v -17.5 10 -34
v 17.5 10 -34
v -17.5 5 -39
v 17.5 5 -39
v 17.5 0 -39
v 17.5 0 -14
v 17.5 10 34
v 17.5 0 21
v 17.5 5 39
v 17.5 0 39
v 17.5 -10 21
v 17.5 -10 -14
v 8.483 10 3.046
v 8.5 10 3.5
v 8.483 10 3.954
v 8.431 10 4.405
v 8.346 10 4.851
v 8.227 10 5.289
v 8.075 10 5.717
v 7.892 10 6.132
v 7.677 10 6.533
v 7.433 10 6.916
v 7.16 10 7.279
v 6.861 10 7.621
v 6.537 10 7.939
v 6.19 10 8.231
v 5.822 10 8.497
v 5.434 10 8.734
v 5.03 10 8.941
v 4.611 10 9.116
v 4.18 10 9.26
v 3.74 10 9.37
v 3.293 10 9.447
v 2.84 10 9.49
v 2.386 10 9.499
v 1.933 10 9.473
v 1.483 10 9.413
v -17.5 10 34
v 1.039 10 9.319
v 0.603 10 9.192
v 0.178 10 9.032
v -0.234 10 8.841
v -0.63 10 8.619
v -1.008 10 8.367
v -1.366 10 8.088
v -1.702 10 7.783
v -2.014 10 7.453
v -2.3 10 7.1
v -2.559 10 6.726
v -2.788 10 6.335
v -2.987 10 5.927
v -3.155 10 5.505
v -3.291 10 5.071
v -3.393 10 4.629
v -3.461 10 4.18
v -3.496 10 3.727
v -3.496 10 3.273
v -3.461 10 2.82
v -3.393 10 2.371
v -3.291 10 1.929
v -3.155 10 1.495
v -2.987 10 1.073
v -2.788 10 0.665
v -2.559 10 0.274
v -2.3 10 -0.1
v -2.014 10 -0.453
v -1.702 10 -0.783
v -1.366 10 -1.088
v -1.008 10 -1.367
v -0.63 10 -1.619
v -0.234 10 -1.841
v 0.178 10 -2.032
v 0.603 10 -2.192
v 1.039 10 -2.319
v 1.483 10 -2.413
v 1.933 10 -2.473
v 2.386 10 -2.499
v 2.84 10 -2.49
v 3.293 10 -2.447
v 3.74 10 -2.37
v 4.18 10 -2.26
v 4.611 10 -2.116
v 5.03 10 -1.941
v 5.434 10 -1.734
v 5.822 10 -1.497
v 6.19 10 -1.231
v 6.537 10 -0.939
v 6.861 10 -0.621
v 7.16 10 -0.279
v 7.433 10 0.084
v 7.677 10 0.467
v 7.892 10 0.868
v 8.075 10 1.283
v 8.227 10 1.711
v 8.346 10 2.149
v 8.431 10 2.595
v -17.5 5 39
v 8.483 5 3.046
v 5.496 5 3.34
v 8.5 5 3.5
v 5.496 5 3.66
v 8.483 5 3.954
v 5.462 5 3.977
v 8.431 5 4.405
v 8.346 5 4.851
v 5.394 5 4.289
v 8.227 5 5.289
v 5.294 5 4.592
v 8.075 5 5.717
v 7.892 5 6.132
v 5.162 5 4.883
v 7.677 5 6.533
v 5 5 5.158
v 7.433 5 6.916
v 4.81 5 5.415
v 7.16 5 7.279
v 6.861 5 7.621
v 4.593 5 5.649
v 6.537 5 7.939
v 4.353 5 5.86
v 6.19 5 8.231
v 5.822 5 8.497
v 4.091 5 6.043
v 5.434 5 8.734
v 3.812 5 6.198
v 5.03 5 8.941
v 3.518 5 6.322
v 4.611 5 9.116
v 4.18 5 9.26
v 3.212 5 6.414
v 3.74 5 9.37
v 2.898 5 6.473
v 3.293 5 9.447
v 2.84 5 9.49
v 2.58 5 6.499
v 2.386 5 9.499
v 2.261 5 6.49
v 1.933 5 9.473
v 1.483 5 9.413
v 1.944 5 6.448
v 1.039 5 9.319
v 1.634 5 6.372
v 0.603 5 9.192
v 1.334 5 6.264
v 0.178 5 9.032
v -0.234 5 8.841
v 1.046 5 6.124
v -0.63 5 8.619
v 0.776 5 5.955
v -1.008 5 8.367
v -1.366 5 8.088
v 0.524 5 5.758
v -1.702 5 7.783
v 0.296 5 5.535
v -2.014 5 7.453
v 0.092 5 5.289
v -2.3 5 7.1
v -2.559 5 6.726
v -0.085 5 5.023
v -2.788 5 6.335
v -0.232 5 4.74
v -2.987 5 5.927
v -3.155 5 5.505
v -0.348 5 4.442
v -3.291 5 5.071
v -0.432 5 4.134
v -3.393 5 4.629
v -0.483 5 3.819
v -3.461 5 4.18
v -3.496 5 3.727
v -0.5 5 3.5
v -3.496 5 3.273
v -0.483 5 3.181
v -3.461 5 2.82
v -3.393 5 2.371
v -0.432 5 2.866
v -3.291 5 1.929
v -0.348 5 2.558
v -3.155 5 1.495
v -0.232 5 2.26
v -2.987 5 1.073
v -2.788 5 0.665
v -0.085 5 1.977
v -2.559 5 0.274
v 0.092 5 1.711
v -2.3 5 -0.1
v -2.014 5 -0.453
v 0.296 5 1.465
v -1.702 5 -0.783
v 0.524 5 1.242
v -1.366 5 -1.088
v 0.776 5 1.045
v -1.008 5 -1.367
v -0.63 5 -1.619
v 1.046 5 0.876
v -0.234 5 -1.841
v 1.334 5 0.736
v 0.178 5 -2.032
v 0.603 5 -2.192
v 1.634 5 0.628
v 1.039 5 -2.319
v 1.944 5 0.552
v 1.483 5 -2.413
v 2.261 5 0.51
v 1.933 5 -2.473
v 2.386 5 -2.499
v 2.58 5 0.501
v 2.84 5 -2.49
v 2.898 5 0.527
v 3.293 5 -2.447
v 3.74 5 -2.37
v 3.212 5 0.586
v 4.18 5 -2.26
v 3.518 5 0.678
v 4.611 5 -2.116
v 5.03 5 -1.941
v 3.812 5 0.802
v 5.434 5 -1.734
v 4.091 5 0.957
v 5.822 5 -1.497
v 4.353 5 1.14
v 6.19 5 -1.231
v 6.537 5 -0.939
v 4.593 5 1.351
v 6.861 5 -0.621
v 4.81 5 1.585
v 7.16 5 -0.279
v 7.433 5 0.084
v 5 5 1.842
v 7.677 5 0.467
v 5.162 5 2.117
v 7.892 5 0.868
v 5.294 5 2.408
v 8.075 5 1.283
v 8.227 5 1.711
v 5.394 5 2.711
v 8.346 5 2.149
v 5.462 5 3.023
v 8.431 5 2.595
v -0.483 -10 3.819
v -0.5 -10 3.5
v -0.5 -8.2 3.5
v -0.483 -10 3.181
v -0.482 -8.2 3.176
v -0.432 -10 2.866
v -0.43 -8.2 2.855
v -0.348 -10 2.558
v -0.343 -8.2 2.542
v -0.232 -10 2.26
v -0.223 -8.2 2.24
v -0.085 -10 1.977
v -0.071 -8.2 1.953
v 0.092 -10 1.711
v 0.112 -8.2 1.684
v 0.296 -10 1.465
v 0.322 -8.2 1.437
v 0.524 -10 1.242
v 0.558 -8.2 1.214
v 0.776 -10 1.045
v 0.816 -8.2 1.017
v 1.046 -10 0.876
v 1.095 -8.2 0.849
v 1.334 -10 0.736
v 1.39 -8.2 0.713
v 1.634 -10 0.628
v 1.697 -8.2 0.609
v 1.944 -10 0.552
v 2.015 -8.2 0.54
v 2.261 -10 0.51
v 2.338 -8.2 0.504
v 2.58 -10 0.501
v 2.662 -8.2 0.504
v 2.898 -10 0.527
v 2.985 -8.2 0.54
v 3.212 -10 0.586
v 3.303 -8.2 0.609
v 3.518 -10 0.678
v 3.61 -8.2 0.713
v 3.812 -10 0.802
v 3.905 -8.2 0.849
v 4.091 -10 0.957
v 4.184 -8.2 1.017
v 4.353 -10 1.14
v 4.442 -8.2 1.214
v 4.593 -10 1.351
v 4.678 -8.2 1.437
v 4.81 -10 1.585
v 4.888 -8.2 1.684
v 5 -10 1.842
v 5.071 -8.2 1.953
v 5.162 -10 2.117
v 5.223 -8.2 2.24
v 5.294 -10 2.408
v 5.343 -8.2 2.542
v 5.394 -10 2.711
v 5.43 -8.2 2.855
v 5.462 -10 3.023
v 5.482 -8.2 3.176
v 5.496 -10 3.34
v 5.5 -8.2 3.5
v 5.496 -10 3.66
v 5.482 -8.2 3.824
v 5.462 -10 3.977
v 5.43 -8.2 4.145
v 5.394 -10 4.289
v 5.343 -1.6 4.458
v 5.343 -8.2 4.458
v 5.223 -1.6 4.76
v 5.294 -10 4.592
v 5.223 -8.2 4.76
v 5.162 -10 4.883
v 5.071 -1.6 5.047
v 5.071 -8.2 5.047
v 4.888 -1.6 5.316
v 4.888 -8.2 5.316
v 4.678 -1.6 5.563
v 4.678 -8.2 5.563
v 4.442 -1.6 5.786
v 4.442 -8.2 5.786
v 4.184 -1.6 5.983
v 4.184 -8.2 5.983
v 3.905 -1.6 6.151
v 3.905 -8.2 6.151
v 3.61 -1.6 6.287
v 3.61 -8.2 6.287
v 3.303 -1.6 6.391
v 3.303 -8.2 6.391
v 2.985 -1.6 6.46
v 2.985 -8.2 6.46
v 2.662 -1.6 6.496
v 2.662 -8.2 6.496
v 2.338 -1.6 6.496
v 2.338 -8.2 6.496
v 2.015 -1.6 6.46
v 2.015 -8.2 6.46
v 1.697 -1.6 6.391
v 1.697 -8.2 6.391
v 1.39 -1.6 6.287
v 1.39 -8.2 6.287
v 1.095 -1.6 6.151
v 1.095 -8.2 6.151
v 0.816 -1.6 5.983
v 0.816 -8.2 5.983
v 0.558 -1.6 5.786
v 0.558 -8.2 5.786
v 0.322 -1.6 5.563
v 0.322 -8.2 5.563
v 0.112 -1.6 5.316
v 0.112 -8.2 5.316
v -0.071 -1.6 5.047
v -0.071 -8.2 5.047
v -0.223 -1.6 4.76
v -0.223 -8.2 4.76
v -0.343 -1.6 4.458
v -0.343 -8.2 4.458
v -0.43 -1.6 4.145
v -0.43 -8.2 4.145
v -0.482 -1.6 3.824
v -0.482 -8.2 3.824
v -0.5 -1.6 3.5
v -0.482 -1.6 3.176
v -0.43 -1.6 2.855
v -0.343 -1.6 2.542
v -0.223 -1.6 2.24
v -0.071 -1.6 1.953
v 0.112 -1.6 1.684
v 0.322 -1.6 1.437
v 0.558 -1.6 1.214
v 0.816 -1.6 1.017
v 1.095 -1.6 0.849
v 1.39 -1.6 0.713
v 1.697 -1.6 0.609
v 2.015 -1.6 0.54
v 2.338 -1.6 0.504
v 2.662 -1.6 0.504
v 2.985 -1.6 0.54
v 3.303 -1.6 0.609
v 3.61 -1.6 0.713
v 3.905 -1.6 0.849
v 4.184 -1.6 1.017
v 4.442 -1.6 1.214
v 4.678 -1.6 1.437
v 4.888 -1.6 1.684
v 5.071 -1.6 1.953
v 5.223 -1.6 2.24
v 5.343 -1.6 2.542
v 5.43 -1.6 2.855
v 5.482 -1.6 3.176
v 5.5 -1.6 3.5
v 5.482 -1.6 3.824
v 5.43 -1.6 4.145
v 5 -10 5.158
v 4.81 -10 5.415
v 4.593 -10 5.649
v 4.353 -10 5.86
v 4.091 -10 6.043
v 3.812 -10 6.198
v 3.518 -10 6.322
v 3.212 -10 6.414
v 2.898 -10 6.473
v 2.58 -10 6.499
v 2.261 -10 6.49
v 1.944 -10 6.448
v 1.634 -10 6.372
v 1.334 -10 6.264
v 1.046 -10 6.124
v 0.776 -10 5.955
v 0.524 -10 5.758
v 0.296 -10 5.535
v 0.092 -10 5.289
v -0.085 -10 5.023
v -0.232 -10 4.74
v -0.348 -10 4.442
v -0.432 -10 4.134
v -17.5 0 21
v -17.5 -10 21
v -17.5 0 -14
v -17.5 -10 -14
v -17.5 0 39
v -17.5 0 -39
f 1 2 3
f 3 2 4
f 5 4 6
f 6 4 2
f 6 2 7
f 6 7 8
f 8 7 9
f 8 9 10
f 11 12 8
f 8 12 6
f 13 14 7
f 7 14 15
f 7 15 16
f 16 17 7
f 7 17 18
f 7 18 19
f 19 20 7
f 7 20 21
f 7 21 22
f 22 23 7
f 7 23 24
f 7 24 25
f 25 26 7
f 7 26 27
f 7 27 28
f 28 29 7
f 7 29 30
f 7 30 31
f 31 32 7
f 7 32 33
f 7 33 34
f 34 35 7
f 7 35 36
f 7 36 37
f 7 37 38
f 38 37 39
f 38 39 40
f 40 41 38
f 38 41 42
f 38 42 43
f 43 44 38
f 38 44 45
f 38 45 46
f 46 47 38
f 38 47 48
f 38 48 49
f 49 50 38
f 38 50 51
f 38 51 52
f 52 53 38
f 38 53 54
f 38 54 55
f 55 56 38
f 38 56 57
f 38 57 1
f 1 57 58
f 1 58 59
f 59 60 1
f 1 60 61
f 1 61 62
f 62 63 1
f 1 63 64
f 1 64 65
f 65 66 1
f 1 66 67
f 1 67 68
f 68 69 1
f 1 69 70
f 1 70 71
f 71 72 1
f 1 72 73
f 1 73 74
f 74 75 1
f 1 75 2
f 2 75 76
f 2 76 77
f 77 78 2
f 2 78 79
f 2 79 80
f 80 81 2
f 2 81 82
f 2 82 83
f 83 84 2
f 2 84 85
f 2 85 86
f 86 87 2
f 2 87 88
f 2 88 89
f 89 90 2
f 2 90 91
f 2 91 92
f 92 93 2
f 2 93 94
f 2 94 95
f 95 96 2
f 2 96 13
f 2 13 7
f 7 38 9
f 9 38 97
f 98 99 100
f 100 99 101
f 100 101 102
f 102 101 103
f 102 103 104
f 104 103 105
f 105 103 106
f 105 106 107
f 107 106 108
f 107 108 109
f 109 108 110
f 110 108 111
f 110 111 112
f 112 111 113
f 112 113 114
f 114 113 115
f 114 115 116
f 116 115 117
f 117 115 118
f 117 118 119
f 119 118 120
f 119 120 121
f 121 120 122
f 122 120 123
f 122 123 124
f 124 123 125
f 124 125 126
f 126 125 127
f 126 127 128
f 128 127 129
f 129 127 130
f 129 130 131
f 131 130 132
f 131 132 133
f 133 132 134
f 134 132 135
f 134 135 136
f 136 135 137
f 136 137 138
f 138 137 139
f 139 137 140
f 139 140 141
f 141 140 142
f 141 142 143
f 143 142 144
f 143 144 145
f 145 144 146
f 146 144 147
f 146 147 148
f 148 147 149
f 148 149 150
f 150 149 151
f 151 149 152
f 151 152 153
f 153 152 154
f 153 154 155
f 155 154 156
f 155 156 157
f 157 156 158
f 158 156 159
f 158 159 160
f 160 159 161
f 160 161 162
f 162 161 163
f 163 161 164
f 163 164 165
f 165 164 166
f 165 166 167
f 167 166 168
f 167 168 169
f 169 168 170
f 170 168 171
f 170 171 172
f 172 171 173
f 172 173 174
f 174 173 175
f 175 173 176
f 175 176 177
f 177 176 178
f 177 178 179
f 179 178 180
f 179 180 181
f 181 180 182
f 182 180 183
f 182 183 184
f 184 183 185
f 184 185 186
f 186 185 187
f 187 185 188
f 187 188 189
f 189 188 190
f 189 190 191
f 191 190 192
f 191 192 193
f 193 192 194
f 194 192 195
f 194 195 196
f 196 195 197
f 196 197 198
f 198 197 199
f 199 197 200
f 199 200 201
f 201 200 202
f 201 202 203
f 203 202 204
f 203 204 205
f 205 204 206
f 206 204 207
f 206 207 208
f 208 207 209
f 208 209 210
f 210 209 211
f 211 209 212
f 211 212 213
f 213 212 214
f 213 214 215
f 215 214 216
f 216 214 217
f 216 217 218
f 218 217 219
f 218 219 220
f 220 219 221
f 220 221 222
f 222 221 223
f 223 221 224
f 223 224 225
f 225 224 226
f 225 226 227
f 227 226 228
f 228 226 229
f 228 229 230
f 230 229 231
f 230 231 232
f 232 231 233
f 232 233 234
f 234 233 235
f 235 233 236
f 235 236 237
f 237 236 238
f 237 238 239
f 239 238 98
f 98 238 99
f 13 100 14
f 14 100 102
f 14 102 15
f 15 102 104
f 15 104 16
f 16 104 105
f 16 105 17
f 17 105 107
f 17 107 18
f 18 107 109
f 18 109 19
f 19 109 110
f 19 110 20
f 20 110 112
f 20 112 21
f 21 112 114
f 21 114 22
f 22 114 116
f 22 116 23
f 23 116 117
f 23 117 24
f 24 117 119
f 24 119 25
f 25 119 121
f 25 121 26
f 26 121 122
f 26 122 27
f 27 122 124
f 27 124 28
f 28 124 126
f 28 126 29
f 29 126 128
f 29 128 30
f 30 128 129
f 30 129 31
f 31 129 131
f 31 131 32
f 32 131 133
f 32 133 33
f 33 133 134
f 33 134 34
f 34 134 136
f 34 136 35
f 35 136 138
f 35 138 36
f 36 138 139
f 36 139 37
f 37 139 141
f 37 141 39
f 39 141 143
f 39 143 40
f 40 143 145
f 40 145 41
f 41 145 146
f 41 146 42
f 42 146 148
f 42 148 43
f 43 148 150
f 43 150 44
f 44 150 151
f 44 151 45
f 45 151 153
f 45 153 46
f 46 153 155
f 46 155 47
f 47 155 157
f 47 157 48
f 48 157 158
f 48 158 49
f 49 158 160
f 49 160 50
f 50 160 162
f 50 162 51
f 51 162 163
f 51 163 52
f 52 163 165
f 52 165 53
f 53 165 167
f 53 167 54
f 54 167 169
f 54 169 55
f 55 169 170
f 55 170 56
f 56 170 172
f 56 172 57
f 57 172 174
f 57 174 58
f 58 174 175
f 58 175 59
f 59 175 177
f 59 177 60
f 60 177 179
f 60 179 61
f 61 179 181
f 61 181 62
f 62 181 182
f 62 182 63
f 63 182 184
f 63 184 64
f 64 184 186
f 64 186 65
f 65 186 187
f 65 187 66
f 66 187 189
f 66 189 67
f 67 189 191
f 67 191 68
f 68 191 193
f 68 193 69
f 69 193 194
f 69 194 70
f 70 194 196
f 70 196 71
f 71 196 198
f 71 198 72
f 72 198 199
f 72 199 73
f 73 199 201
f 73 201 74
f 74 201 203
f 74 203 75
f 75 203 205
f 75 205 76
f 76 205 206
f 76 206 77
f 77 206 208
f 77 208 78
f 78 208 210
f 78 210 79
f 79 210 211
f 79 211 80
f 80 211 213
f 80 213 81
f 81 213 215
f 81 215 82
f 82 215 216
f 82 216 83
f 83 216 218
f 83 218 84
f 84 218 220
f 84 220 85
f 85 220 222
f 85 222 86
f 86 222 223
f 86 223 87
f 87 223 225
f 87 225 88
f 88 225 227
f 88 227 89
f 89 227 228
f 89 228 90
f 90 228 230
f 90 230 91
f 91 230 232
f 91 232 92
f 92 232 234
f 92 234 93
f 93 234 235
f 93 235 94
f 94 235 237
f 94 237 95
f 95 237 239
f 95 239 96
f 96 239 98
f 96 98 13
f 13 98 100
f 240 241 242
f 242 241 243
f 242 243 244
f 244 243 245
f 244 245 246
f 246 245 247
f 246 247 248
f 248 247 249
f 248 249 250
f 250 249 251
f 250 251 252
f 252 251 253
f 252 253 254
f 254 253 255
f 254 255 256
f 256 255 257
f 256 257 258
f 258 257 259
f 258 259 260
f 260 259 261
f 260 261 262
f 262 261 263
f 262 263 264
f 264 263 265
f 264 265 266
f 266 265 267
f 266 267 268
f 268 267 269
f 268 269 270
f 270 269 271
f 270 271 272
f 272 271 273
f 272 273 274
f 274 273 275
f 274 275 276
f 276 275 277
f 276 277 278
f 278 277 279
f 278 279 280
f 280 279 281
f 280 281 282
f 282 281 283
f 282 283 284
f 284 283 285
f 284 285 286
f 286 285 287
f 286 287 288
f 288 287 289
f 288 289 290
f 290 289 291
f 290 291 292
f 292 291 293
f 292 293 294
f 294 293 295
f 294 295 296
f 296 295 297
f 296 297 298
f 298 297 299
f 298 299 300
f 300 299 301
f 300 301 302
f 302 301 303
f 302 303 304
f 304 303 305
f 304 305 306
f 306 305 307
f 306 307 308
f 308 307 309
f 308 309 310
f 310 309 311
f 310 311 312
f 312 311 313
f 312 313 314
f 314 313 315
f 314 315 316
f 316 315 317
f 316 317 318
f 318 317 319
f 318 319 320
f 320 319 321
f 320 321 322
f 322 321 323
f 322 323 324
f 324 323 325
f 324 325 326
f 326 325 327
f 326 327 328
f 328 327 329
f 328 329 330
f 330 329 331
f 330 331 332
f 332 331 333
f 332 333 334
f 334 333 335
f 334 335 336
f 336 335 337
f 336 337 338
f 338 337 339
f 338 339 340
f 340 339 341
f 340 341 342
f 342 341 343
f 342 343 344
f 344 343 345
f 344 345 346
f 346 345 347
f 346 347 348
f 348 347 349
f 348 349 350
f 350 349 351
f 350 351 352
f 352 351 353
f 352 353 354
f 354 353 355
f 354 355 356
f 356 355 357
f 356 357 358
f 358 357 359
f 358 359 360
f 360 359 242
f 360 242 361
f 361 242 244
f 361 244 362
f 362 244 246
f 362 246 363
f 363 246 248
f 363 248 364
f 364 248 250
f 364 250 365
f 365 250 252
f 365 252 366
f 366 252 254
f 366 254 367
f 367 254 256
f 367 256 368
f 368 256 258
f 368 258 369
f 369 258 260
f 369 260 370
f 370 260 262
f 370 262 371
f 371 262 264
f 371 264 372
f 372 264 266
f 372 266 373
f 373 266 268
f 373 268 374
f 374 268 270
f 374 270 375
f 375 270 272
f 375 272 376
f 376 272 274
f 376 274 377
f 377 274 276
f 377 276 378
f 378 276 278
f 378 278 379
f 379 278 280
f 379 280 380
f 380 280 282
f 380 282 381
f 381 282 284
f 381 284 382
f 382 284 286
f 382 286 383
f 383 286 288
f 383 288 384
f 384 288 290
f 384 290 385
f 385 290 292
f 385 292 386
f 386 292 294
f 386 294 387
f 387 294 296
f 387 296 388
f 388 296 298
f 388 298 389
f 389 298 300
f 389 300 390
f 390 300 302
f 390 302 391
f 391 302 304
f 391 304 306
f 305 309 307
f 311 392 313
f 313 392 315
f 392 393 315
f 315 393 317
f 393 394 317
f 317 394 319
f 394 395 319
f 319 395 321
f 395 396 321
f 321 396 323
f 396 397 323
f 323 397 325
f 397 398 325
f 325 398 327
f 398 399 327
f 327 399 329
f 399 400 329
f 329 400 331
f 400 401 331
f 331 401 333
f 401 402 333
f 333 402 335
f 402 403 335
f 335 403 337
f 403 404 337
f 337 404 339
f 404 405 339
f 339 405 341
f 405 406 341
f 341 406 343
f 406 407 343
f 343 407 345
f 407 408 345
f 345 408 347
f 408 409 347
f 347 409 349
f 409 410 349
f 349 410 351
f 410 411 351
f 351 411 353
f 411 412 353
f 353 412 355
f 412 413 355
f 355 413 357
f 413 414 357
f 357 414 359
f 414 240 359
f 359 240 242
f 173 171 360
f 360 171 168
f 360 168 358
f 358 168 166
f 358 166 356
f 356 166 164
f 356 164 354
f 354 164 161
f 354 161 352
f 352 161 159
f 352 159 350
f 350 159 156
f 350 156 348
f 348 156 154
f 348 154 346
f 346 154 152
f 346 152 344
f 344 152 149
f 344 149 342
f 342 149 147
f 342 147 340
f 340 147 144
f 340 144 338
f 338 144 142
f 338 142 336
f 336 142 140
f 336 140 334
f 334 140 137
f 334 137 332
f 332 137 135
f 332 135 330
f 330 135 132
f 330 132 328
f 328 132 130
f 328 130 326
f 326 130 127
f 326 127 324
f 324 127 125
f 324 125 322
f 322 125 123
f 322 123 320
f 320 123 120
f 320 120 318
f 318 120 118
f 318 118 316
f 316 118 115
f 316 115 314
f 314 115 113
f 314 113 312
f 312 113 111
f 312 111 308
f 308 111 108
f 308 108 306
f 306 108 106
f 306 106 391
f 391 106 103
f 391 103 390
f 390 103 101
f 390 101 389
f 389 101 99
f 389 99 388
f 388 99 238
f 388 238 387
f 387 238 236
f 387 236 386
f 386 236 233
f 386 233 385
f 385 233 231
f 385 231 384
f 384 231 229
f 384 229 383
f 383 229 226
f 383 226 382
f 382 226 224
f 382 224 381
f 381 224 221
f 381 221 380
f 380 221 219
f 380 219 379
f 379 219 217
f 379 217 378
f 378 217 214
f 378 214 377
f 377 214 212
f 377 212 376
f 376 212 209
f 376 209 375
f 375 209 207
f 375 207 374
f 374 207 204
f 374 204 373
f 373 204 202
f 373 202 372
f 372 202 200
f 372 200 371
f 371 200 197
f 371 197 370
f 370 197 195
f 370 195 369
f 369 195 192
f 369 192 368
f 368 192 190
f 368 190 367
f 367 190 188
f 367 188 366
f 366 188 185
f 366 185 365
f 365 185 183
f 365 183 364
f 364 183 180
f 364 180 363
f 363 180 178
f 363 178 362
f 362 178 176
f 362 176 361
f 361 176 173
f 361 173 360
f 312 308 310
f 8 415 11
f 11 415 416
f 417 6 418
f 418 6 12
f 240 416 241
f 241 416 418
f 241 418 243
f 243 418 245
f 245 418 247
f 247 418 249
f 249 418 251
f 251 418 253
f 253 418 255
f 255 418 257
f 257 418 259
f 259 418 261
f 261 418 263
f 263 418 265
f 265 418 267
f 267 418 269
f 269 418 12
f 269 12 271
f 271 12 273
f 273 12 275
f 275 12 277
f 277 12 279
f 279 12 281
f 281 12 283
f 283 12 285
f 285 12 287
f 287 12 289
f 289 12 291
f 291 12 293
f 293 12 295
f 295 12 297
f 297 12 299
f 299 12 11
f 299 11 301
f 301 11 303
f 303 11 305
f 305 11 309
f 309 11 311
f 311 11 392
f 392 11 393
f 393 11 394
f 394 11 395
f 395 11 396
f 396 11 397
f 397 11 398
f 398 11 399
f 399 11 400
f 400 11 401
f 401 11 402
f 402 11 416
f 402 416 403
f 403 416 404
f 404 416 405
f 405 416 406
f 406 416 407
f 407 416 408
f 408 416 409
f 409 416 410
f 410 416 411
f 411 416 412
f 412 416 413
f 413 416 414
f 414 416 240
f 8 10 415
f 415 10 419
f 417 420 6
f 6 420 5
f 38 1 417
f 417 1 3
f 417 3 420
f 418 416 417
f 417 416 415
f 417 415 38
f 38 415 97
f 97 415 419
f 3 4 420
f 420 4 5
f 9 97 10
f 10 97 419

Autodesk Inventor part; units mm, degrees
ref_plane "YZ Plane" through (0, 0, 0) normal (1, 0, 0) x (0, 1, 0)
ref_plane "XZ Plane" through (0, 0, 0) normal (0, 1, 0) x (-1, 0, 0)
ref_plane "XY Plane" through (0, 0, 0) normal (0, 0, 1) x (1, 0, 0)
sketch "Skizze1" plane through (0, 0, 0) normal (0, 1, 0) x (-1, 0, 0)
  line L0 (-17.5, 39) -> (17.5, 39)
  line L1 (17.5, 39) -> (17.5, -39)
  line L2 (17.5, -39) -> (-17.5, -39)
  line L3 (-17.5, -39) -> (-17.5, 39)
  line L4 (-17.5, 39) -> (17.5, -39) construction
  line L5 (17.5, 39) -> (-17.5, -39) construction
  point P0 (0, 0)
  dimension "d0" = 78
  dimension "d1" = 35
extrude "Extrusion1" add sketch "Skizze1" along normal blind 10
sketch "Skizze2" plane through (0, 0, 0) normal (0, -1, 0) x (1, 0, 0)
  line L0 (17.5, 39) -> (-17.5, 39) projected
  line L1 (-17.5, 39) -> (-17.5, -39) projected
  line L2 (-17.5, -39) -> (17.5, -39) projected
  line L3 (17.5, -39) -> (17.5, 39) projected
  line L4 (17.5, 39) -> (17.5, -39) projected
  line L5 (-17.5, -14) -> (17.5, -14)
  line L6 (17.5, -14) -> (17.5, 21)
  line L7 (17.5, 21) -> (-17.5, 21)
  line L8 (-17.5, 21) -> (-17.5, -14)
  point P0 (0, 0)
  dimension "d4" = 18
  dimension "d5" = 25
extrude "Extrusion2" add sketch "Skizze2" along normal blind 10 contours L3 L5 L1 L7
sketch "Skizze3" plane through (0, 10, 0) normal (0, 1, 0) x (1, 0, 0)
  line L0 (17.5, -39) -> (17.5, 39) projected
  line L1 (-17.5, -39) -> (17.5, -39) projected
  point P0 (0, 0)
  point P1 (2.5, -3.5)
  dimension "d8" = 15
  dimension "d9" = 35.5
hole "Bohrung1" at (2.5, 10, 3.5) direction (0, -1, 0) diameter 6 end through all counterbore diameter 12 counterbore depth 5
chamfer "Fase1" distance 5 angle 45 2 edges at (0, 10, 39) (0, 10, -39)
properties part number "Holding_Plate_Frame" material "PC/ABS-Kunststoff"
